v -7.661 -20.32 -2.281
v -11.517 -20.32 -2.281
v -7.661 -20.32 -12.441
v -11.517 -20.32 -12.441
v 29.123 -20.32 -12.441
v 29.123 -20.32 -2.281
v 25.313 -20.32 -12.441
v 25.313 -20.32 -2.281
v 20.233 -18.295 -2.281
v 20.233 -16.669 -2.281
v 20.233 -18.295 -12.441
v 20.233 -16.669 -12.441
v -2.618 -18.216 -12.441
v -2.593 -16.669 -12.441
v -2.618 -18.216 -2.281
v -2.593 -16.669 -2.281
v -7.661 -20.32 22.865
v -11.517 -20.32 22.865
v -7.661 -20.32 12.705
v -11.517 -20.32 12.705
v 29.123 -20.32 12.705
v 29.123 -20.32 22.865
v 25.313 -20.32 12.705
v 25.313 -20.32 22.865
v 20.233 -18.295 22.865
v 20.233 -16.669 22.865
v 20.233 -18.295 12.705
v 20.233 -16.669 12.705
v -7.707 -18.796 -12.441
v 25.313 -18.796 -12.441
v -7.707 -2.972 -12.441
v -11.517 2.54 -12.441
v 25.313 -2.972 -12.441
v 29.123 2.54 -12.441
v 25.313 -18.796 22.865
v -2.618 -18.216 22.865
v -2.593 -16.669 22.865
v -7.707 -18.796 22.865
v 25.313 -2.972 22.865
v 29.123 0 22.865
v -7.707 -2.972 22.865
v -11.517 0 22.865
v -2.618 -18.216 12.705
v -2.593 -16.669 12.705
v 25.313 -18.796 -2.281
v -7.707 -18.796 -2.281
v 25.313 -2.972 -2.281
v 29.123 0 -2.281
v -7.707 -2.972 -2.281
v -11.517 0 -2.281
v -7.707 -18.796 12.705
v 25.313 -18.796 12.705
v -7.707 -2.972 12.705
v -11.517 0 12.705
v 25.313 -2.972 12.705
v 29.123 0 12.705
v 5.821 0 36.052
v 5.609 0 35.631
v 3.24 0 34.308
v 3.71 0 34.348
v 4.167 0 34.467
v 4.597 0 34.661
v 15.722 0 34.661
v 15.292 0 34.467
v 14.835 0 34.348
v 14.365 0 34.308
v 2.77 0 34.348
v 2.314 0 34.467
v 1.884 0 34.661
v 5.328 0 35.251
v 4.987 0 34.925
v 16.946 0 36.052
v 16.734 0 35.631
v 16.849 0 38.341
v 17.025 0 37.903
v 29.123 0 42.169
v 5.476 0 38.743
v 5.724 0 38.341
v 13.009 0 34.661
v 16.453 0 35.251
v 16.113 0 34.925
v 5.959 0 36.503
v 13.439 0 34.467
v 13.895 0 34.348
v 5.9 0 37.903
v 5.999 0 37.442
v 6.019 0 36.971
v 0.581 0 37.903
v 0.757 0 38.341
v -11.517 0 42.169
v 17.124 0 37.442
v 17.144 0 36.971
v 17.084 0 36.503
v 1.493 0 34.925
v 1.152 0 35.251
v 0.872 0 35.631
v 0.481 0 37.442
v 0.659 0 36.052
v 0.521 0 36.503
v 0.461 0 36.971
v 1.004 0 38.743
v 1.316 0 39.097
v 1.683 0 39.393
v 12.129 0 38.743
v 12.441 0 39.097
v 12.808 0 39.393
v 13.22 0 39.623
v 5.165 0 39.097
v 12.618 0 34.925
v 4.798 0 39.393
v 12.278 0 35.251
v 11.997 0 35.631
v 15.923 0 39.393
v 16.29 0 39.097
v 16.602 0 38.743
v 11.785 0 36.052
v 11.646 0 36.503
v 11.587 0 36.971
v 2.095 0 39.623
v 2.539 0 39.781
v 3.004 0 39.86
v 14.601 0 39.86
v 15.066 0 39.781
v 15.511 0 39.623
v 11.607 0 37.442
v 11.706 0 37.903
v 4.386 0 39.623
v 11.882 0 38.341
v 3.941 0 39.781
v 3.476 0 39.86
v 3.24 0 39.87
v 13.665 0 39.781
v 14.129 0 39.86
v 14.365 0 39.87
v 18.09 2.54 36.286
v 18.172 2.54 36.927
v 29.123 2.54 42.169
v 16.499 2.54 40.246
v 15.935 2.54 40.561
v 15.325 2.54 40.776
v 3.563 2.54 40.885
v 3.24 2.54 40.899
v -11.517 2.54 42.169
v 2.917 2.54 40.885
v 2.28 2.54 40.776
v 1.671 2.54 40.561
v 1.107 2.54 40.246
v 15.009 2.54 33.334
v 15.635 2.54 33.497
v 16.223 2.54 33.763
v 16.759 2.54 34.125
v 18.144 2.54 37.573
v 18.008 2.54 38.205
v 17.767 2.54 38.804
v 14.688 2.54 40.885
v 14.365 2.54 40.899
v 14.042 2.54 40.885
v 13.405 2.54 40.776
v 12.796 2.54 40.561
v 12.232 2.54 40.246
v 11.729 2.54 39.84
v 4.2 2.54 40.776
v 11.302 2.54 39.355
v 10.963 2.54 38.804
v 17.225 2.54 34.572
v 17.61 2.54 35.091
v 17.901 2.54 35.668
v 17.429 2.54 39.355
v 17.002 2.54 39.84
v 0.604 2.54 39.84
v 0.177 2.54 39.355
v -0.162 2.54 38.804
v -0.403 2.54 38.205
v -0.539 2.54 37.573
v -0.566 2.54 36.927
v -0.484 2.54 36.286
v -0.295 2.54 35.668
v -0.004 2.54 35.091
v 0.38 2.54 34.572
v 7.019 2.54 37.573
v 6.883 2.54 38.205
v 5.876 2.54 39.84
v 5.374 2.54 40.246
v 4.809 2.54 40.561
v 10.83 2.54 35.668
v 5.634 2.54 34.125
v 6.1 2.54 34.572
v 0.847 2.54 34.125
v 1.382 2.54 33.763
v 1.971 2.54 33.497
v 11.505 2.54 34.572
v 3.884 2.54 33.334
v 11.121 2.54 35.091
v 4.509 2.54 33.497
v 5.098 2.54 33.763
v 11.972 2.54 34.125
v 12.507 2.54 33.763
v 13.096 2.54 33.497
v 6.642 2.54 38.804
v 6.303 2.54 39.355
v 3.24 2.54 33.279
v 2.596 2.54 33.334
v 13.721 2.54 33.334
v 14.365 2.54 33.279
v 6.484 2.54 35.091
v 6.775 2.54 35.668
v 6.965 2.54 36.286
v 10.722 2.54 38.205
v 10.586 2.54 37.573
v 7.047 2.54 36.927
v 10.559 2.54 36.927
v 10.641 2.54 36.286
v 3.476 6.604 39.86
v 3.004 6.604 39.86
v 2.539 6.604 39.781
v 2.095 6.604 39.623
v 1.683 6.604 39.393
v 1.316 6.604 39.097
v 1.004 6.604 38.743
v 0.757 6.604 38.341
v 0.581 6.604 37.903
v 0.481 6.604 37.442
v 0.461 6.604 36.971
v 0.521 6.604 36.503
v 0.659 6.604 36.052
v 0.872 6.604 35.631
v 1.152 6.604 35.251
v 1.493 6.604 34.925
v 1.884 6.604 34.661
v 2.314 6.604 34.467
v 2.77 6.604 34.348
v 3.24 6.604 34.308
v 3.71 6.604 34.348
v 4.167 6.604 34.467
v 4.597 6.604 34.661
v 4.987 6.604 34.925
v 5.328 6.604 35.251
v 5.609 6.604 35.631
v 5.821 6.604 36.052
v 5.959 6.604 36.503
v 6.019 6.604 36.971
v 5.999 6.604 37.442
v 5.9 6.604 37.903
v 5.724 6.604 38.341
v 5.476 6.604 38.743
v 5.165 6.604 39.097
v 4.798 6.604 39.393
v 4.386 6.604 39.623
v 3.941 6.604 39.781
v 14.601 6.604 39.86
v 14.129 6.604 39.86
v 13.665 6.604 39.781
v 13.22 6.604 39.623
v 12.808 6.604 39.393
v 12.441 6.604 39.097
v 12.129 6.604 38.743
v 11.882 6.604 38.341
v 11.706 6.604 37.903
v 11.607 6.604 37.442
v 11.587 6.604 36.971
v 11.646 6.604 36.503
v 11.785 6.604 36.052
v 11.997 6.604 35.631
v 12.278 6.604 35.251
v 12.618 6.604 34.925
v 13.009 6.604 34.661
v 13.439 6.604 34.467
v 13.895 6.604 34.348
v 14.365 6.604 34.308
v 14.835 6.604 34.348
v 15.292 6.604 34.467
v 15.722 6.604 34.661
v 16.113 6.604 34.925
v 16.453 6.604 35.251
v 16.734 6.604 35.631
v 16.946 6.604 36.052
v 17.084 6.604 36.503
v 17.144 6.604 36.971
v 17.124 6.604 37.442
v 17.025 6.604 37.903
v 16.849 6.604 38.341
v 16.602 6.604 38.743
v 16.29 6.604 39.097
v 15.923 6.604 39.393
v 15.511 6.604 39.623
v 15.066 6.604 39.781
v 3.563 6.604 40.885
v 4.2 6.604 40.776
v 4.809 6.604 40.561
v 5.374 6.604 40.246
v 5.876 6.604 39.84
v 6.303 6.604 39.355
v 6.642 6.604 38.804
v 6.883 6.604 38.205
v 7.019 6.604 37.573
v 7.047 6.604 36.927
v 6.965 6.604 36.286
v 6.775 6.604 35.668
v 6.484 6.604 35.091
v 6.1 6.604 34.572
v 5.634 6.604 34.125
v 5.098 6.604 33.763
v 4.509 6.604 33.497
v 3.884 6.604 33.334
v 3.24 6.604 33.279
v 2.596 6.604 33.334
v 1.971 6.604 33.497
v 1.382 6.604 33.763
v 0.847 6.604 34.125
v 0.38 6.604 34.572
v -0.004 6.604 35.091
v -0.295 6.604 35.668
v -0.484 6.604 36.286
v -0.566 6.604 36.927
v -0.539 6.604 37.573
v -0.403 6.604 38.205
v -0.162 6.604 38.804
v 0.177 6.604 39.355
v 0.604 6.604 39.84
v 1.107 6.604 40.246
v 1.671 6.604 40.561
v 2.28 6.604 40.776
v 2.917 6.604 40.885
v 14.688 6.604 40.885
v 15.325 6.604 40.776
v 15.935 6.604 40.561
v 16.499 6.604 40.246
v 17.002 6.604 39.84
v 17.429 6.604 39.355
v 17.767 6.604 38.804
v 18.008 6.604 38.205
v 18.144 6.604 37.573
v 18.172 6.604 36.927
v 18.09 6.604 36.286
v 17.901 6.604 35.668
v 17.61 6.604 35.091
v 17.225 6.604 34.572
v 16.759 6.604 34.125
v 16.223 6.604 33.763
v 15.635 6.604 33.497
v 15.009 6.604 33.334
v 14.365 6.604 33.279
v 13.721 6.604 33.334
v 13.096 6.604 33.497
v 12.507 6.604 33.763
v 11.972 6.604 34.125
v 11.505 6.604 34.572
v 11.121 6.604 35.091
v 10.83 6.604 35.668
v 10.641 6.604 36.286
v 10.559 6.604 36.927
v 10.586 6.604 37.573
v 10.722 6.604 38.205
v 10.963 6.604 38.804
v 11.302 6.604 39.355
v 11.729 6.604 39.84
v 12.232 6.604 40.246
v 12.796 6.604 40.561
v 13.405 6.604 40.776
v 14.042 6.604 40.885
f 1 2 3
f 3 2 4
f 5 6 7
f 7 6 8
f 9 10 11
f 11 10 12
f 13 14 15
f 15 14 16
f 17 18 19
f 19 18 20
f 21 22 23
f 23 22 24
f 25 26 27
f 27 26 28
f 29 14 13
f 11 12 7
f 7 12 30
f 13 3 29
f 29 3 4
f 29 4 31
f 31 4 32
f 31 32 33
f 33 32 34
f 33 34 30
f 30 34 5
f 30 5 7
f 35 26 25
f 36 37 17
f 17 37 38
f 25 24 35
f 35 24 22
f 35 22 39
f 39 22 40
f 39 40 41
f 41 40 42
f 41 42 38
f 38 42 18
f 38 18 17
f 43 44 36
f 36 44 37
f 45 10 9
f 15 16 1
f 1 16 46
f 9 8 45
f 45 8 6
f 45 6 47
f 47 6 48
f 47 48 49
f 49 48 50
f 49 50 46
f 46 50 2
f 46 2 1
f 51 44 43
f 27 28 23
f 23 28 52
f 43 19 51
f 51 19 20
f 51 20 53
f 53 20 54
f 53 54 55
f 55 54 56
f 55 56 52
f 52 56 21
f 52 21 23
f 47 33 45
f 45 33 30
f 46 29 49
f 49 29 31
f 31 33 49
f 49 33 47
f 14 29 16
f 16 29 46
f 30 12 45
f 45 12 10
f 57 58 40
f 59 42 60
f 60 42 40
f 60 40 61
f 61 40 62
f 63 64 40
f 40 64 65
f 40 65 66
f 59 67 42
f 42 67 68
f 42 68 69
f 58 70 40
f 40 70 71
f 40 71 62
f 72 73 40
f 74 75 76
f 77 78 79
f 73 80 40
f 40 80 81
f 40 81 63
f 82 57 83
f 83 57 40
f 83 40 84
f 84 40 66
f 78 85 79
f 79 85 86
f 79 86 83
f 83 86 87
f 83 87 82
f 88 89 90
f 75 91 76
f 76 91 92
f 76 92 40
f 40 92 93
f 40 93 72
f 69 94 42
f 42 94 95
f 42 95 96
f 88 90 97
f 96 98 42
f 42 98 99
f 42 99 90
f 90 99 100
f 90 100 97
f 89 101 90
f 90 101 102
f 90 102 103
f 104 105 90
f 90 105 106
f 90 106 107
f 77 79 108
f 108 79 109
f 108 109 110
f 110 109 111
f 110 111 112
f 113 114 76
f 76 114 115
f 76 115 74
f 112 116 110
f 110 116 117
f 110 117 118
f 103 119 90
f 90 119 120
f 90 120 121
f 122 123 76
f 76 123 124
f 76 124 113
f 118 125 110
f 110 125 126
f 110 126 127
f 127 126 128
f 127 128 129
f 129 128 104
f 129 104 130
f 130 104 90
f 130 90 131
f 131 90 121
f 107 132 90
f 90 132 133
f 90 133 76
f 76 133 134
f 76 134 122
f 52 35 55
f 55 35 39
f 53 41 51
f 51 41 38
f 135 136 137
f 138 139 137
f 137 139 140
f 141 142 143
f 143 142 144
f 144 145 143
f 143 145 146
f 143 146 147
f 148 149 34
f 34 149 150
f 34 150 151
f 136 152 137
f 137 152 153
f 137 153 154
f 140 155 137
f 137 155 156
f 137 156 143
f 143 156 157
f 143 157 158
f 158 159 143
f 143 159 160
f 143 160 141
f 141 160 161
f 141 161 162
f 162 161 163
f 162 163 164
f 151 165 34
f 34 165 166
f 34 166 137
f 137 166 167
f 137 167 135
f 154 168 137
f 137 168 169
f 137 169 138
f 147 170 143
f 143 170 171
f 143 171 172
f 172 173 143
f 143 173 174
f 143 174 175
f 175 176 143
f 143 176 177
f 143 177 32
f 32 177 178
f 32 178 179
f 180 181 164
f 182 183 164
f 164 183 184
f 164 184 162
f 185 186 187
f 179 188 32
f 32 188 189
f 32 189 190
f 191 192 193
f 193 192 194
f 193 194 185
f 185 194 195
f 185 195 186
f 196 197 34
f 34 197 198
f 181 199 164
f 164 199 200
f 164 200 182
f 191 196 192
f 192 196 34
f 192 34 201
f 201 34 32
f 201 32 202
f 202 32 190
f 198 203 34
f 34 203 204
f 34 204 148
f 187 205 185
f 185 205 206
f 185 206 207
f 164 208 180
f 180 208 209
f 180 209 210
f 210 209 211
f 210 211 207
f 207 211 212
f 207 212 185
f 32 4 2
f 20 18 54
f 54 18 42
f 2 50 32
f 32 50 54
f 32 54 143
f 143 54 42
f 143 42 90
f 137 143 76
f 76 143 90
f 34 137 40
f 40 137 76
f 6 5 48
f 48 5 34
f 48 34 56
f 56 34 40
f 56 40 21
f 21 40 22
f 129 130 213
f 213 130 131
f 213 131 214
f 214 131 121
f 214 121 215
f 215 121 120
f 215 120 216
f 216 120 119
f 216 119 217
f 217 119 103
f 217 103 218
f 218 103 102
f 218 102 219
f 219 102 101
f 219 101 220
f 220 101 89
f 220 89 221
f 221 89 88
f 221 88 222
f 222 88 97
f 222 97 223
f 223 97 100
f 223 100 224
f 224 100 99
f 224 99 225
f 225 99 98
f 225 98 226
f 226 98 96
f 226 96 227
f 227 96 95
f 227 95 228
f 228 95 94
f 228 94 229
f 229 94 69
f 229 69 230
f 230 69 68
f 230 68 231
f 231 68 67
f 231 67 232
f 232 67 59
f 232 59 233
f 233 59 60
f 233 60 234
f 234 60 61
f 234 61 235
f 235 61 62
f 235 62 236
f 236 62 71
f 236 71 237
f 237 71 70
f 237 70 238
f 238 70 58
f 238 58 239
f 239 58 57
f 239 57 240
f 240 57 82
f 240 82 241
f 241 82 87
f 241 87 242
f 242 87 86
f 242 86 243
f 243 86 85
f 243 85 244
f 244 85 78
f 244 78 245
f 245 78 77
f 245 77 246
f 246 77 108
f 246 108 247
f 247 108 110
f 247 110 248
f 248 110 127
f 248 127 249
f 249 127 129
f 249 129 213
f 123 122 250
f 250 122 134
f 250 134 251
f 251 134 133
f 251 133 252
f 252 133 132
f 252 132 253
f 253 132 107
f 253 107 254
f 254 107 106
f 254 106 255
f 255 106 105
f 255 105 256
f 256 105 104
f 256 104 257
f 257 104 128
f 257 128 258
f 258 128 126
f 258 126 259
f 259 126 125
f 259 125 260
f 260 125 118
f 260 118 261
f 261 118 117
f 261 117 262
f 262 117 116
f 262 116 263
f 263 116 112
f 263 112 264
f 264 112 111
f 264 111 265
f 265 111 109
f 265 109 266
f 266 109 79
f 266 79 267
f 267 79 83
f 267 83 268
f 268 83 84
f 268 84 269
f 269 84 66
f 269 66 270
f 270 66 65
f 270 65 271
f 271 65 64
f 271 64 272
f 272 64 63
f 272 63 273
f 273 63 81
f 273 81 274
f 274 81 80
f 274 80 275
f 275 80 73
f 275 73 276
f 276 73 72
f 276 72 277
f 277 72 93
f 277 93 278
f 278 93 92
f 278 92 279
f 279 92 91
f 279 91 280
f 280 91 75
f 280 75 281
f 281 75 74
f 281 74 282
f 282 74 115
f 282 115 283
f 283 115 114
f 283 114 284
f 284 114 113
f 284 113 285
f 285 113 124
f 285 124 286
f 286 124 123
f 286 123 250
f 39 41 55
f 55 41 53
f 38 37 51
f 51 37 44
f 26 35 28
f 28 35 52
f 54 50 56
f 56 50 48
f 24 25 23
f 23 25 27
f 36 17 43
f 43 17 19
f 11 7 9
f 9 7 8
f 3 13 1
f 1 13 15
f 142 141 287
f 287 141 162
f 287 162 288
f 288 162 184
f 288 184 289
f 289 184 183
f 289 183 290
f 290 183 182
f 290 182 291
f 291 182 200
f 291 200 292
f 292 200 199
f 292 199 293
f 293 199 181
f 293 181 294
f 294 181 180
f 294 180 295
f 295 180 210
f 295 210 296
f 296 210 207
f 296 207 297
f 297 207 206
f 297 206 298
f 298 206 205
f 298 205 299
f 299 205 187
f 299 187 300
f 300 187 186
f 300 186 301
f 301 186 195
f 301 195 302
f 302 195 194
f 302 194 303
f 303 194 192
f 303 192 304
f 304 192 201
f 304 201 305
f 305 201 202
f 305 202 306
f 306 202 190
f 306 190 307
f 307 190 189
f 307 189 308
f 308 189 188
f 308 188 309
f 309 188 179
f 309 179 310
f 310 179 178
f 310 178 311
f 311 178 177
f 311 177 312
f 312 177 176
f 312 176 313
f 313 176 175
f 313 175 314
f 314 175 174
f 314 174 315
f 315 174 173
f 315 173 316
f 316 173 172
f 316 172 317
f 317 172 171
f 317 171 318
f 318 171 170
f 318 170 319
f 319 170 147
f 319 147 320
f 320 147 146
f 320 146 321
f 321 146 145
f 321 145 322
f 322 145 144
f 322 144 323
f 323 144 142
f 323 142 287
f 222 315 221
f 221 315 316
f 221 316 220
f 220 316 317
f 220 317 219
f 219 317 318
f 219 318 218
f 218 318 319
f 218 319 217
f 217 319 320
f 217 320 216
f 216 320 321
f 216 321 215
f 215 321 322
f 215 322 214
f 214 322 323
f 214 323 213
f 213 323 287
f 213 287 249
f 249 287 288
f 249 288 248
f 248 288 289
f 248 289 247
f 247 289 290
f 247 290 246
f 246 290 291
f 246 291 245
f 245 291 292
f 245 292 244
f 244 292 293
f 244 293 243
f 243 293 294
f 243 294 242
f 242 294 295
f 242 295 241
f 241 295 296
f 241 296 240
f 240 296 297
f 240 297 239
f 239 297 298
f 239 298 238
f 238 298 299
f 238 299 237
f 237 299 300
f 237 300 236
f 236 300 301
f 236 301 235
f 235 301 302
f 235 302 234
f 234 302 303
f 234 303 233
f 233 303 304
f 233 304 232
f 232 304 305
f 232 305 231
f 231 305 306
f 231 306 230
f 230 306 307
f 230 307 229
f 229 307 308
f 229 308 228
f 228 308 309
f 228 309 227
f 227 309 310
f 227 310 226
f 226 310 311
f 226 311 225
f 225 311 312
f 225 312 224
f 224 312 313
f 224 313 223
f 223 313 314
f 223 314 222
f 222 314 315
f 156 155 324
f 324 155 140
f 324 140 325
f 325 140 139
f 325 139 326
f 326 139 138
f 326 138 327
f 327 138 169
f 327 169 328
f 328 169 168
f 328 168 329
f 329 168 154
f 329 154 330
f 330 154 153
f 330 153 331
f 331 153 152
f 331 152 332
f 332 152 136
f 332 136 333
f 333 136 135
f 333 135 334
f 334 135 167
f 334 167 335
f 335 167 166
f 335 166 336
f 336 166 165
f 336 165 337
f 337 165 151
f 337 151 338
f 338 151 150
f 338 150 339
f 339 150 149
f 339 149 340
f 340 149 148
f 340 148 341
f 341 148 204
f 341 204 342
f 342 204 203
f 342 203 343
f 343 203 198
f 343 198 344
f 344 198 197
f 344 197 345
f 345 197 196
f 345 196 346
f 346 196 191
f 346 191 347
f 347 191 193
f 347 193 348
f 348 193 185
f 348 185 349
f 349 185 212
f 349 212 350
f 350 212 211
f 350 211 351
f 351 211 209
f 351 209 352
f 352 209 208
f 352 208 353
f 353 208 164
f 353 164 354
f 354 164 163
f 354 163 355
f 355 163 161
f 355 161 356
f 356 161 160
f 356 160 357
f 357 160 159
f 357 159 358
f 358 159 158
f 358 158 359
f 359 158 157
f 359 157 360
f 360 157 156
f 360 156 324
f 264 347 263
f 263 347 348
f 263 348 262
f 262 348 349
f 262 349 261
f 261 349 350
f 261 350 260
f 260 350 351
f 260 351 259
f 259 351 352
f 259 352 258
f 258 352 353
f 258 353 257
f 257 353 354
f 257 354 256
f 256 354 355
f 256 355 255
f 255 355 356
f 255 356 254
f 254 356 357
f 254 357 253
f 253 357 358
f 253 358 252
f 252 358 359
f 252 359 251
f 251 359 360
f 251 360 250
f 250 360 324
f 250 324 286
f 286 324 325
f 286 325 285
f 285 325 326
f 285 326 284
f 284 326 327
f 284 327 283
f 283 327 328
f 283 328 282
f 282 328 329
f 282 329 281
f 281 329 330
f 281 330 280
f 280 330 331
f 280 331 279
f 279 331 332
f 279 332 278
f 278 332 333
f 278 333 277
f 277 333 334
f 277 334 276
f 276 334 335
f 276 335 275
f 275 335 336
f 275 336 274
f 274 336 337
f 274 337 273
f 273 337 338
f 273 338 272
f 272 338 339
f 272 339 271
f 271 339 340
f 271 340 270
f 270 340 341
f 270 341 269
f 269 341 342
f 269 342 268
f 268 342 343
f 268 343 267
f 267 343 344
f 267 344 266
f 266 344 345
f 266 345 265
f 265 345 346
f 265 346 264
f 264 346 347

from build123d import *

# Parameters (mm, degrees)
SKETCH3_R           = 2.7813
BOSS_EXTRUDE3_DEPTH = 2.54
SKETCH4_W           = 3.81
SKETCH4_H           = 40.386
BOSS_EXTRUDE4_DEPTH = 20.32
SKETCH5_W           = 40.386
SKETCH5_H           = 1.524
BOSS_EXTRUDE5_DEPTH = 5.08
SKETCH6_W           = 40.386
SKETCH6_H           = 1.524
BOSS_EXTRUDE6_DEPTH = 5.08
SKETCH7_W           = 40.64
SKETCH7_H           = 20.32
CUT_EXTRUDE1_DEPTH  = 5.08
SKETCH11_W          = 40.64
SKETCH11_H          = 35.306
BOSS_EXTRUDE7_DEPTH = 2.9718
BOSS_EXTRUDE8_DEPTH = 35.306
SKETCH8_W           = 14.986
SKETCH8_H           = 20.32
CUT_EXTRUDE2_DEPTH  = 41.64
CUT_EXTRUDE3_DEPTH  = 36.306
SKETCH14_R          = 3.81
SKETCH14_R_2        = 2.7813
BOSS_EXTRUDE9_DEPTH = 6.604


with BuildPart() as part:
    # Sketch3 → Boss-Extrude3 (new body)
    with BuildSketch(Plane(origin=(0, 0, 0), x_dir=(1, 0, 0), z_dir=(0, 1, 0))):
        Polygon((-11.517251908, 12.440983784), (29.122748092, 12.440983784), (29.122748092, -34.564151764), (29.122748092, -42.169016216), (18.885256114, -42.169016216), (-11.517251908, -42.169016216), align=None)
        with Locations((3.240148092, -37.089016216)):
            Circle(SKETCH3_R, mode=Mode.SUBTRACT)
        with Locations((14.365348092, -37.089016216)):
            Circle(SKETCH3_R, mode=Mode.SUBTRACT)
    extrude(amount=BOSS_EXTRUDE3_DEPTH)

    # Sketch4 → Boss-Extrude4 (add)
    with BuildSketch(Plane.XZ):
        with Locations((-9.612251908, 7.752016216)):
            Rectangle(SKETCH4_W, SKETCH4_H)
        with Locations((27.217748092, 7.752016216)):
            Rectangle(SKETCH4_W, SKETCH4_H)
    extrude(amount=BOSS_EXTRUDE4_DEPTH)

    # Sketch5 → Boss-Extrude5 (add)
    with BuildSketch(Plane(origin=(-7.707251908, 0, 0), x_dir=(0, 0, -1), z_dir=(1, 0, 0))):
        with Locations((-7.752016216, -19.558)):
            Rectangle(SKETCH5_W, SKETCH5_H)
    extrude(amount=BOSS_EXTRUDE5_DEPTH)

    # Sketch6 → Boss-Extrude6 (add)
    with BuildSketch(Plane.ZY.offset(-25.312748092)):
        with Locations((7.752016216, -19.558)):
            Rectangle(SKETCH6_W, SKETCH6_H)
    extrude(amount=BOSS_EXTRUDE6_DEPTH)

    # Sketch7 → Cut-Extrude1 (cut)
    with BuildSketch(Plane.XY.offset(27.945016216)):
        with Locations((8.802748092, -10.16)):
            Rectangle(SKETCH7_W, SKETCH7_H)
    extrude(amount=-CUT_EXTRUDE1_DEPTH, mode=Mode.SUBTRACT)

    # Sketch11 → Boss-Extrude7 (add)
    with BuildSketch(Plane.XZ):
        with Locations((8.802748092, 5.212016216)):
            Rectangle(SKETCH11_W, SKETCH11_H)
    extrude(amount=BOSS_EXTRUDE7_DEPTH)

    # Sketch12 → Boss-Extrude8 (add)
    with BuildSketch(Plane.XY.offset(22.865016216)):
        Polygon((-7.707251908, -18.796), (-2.593407451, -16.66881978), (-2.627251908, -18.796), align=None)
        Polygon((20.232748092, -18.796), (20.232748092, -16.66881978), (25.312748092, -18.796), align=None)
    extrude(amount=-BOSS_EXTRUDE8_DEPTH)

    # Sketch8 → Cut-Extrude2 (cut, through all)
    with BuildSketch(Plane(origin=(29.122748092, 0, 0), x_dir=(0, 0, -1), z_dir=(1, 0, 0))):
        with Locations((-5.212016216, -10.16)):
            Rectangle(SKETCH8_W, SKETCH8_H)
    extrude(amount=-CUT_EXTRUDE2_DEPTH, mode=Mode.SUBTRACT)

    # Sketch13 → Cut-Extrude3 (cut, through all)
    with BuildSketch(Plane.XY.offset(22.865016216)):
        Polygon((-2.618031664, -18.216492377), (-7.660745747, -20.32), (-2.627251908, -20.32), (-2.627251908, -18.796), align=None)
        Polygon((20.232748092, -18.294602636), (20.232748092, -20.32), (25.312748092, -20.32), align=None)
    extrude(amount=-CUT_EXTRUDE3_DEPTH, mode=Mode.SUBTRACT)

    # Sketch14 → Boss-Extrude9 (add)
    with BuildSketch(Plane.XZ):
        with Locations((3.240148092, 37.089016216)):
            Circle(SKETCH14_R)
        with Locations((3.240148092, 37.089016216)):
            Circle(SKETCH14_R_2, mode=Mode.SUBTRACT)
        with Locations((14.365348092, 37.089016216)):
            Circle(SKETCH14_R)
        with Locations((14.365348092, 37.089016216)):
            Circle(SKETCH14_R_2, mode=Mode.SUBTRACT)
    extrude(amount=-BOSS_EXTRUDE9_DEPTH)


solid = part.part
